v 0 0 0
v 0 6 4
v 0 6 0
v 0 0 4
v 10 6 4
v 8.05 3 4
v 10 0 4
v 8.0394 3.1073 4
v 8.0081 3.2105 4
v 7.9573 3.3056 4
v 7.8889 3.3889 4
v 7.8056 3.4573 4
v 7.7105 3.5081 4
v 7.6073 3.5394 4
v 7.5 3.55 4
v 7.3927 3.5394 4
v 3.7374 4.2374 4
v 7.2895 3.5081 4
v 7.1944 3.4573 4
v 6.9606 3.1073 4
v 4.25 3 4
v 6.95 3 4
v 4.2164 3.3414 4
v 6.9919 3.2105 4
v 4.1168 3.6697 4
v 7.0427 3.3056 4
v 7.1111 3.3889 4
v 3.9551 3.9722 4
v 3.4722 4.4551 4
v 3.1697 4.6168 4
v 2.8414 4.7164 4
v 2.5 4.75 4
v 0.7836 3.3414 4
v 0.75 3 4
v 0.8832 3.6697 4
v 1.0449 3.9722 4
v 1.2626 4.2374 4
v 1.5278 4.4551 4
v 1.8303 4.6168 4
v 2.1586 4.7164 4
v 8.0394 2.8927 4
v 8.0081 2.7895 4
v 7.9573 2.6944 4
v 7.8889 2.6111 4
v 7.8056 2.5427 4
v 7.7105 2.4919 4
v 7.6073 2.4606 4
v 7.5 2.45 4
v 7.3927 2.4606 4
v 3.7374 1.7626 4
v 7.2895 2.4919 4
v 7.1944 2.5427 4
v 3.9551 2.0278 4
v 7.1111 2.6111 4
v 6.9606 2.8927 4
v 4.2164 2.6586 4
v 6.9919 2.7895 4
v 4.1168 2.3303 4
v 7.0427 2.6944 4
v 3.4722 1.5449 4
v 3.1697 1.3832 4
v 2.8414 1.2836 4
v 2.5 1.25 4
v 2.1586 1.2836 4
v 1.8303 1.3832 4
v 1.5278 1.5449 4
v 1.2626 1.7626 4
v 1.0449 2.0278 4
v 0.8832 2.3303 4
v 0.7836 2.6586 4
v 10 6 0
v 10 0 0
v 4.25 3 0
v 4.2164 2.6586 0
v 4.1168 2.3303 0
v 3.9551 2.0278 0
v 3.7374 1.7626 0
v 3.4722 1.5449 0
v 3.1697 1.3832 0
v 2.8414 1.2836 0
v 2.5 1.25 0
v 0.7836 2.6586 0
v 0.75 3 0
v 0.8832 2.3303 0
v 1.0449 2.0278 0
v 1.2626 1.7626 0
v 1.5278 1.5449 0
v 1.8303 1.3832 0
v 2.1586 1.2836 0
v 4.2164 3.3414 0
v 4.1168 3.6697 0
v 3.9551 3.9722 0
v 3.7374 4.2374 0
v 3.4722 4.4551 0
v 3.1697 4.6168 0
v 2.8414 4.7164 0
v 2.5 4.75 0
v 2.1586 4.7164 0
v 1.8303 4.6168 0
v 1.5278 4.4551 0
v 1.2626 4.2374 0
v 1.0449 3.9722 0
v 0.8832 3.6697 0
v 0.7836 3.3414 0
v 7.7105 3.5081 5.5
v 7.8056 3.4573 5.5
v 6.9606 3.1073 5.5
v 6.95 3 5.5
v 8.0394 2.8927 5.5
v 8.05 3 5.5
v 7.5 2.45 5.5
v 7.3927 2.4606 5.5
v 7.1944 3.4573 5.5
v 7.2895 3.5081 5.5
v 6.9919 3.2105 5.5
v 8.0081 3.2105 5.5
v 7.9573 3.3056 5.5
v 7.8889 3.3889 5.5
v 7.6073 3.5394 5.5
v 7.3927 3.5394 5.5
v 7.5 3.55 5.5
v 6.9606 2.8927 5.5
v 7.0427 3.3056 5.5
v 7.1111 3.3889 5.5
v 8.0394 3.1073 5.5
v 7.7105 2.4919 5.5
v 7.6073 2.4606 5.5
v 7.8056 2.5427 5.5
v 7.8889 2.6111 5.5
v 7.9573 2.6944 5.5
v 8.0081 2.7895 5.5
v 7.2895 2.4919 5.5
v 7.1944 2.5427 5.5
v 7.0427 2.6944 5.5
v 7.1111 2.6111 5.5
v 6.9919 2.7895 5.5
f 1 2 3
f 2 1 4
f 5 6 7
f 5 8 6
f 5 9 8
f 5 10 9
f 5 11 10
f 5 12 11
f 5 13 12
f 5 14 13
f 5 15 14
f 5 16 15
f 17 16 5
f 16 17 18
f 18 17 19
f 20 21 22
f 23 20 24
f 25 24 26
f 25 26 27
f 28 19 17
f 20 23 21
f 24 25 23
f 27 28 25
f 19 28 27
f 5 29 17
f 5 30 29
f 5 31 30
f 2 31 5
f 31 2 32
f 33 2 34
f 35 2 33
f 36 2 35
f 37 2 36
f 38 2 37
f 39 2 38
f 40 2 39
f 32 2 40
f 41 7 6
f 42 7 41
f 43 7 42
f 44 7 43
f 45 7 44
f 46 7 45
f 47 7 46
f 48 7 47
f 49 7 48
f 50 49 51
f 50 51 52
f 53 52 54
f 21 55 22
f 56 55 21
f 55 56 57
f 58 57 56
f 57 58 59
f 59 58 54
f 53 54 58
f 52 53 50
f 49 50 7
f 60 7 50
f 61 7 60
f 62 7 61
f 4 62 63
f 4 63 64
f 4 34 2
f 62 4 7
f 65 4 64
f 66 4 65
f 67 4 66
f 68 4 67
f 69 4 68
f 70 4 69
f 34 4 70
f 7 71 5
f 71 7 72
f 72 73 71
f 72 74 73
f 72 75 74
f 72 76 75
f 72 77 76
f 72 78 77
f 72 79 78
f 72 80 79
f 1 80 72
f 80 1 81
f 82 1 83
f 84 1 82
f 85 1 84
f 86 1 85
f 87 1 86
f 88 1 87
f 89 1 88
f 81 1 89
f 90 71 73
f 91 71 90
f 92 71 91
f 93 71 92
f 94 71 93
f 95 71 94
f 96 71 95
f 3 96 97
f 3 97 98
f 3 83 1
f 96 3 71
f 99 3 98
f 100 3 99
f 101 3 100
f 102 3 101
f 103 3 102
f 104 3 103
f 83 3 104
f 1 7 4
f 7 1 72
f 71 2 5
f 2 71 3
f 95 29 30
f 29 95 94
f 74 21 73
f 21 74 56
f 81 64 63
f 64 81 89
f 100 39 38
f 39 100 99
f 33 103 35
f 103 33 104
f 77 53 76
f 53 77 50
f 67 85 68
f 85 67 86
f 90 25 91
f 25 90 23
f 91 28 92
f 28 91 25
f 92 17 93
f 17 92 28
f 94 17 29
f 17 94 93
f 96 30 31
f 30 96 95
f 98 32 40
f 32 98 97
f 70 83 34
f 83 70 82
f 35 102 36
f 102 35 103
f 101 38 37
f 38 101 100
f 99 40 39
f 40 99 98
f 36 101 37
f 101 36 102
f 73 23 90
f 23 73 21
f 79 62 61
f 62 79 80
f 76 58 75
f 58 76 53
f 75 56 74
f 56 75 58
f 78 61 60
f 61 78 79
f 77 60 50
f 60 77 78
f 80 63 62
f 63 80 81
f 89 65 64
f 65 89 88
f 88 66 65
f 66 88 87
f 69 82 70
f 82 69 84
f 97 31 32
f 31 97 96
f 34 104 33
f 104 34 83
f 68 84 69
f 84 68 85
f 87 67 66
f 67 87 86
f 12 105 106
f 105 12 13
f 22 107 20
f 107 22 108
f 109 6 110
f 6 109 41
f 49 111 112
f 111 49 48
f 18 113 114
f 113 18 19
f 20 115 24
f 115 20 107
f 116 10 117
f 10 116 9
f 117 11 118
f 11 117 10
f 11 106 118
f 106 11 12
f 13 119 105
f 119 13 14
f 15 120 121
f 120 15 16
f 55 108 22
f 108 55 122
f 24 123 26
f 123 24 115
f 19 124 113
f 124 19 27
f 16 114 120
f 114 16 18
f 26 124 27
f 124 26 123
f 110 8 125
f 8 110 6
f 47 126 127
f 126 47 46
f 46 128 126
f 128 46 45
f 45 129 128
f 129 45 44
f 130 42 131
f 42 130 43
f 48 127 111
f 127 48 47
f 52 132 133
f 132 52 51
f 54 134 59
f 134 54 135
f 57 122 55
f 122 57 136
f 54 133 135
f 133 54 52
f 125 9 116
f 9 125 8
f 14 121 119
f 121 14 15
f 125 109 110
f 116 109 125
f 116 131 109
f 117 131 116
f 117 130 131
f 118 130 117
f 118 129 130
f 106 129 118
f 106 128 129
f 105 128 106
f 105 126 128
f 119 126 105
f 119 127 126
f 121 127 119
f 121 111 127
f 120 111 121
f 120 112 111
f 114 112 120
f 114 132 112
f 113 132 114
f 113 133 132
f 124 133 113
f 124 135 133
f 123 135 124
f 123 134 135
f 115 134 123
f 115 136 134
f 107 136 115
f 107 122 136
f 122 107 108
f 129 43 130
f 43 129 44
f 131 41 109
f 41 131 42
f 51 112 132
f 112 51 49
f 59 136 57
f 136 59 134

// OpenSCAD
$fn=32;

union() {
    difference() {
        cube([10,6,4]);
        translate([2.5,3,0]) {
            cylinder(h=4,r=1.75);
        }
    }
    translate([7.5,3,0]) {
        cylinder(h=5.5,r=0.55);
    }
}
